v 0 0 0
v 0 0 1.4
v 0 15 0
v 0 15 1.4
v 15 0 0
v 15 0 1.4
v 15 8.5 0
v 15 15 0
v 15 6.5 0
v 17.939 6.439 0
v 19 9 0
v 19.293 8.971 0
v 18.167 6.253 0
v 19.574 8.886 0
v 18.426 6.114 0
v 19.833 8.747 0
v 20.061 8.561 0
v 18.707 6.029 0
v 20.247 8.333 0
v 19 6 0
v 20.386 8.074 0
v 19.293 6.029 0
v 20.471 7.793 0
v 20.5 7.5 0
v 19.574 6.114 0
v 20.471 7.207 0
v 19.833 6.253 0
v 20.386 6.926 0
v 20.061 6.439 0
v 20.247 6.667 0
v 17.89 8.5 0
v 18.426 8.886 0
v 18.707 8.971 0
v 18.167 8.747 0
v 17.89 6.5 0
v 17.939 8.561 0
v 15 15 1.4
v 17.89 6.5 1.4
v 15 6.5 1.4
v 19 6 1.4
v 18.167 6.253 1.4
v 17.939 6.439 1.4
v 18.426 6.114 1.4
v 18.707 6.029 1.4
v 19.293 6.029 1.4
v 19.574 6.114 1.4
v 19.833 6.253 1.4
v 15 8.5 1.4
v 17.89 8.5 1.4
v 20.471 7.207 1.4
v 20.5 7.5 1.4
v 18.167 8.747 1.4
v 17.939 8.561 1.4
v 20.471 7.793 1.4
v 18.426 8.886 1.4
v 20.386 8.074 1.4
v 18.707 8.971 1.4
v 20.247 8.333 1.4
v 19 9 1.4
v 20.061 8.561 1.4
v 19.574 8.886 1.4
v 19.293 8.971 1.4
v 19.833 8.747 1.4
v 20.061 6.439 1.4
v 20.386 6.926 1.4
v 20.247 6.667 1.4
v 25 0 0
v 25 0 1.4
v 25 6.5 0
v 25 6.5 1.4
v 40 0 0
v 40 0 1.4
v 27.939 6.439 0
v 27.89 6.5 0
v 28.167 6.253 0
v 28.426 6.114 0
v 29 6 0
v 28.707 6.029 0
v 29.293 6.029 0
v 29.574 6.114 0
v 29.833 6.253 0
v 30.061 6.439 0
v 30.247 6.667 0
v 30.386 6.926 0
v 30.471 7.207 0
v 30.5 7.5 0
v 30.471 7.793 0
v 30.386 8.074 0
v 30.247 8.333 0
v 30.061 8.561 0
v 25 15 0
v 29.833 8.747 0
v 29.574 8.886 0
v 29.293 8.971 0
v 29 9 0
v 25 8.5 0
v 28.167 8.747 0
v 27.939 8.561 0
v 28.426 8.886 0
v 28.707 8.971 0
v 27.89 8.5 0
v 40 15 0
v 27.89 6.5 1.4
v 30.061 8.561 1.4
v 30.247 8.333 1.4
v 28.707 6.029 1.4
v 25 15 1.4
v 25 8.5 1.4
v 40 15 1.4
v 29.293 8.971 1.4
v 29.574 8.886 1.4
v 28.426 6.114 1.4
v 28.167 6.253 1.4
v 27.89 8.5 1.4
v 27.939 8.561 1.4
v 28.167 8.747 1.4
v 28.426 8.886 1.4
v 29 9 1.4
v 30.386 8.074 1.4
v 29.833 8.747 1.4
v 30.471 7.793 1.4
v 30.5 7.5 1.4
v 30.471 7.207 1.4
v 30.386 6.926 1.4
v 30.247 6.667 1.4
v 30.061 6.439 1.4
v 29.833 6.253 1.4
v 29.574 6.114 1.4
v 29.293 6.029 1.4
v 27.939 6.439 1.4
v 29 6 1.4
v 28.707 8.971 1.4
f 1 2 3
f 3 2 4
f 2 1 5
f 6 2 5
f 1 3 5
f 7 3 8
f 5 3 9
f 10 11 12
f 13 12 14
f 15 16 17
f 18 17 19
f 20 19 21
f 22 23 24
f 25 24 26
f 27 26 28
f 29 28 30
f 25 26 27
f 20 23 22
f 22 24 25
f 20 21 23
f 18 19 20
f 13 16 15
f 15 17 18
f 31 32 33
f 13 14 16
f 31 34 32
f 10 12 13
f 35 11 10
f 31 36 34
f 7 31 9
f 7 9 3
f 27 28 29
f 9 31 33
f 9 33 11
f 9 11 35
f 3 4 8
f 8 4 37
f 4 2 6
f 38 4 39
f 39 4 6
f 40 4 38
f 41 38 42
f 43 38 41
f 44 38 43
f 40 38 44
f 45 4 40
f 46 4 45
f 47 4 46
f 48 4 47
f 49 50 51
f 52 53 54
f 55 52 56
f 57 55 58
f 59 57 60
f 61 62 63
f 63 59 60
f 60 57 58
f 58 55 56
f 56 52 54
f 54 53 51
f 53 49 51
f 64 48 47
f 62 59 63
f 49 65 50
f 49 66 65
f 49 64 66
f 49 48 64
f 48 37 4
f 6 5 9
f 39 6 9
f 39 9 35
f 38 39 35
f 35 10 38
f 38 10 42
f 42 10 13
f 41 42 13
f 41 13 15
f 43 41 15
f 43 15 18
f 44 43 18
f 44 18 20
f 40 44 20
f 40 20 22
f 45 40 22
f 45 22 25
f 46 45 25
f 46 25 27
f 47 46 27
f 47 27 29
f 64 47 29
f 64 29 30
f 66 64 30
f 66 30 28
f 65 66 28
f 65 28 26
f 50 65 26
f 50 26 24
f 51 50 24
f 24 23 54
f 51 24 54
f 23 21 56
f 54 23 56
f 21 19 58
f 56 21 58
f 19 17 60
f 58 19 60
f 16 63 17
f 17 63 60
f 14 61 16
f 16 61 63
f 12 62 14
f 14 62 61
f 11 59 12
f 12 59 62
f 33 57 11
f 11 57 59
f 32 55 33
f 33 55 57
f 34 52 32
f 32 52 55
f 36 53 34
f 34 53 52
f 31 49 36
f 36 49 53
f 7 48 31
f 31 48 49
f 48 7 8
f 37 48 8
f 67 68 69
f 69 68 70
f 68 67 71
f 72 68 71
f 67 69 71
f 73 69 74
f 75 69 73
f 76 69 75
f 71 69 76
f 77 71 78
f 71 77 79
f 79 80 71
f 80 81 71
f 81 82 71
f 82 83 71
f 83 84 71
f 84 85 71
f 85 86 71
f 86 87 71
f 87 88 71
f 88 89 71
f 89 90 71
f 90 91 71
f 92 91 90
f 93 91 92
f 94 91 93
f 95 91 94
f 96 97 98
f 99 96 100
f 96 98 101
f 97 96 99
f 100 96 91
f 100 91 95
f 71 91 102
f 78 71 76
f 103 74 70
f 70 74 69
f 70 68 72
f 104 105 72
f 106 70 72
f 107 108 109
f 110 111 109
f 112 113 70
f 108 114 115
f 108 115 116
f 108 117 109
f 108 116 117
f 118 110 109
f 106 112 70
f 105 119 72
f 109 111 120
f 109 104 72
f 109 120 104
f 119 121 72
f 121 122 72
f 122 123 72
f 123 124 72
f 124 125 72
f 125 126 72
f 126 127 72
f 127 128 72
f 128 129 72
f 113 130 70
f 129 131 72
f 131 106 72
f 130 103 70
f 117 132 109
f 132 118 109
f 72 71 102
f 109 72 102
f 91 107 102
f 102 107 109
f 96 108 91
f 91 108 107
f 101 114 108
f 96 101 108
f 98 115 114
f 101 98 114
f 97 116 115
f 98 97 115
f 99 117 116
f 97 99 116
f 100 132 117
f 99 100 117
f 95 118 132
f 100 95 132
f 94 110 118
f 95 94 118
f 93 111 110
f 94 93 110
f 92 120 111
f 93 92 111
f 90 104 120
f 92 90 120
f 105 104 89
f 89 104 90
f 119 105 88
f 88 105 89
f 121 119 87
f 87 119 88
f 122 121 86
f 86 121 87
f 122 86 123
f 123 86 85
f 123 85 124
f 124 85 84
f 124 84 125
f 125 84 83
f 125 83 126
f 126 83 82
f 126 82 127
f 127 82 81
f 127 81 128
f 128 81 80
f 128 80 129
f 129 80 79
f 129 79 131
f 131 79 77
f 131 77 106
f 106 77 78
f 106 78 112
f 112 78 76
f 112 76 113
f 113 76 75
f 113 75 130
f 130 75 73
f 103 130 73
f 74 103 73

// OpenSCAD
$fn=32;

*union() {
  cube([15, 15, 1.4]);
  translate([15+4, 15/2, 0]) cylinder(r=3/2, h=1.4);
  translate([15+4-10, (15-2)/2, 0]) cube([10, 2, 1.4]);

  translate([15, 0, 0]) difference() {
    translate([15.3, 0, 0]) cube([15, 15, 1.4]);
    translate([15+4, 15/2, -0.5]) cylinder(r=3.3/2, h=2.2);
    translate([15+4-10, (15-2.3)/2, -0.5]) cube([10, 2.3, 2.2]);
  }
}

cube([15, 15, 1.4]);
translate([15+4, 15/2, 0]) cylinder(r=3/2, h=1.4);
translate([15+4-10, (15-2)/2, 0]) cube([10, 2, 1.4]);

#translate([10, 0, 0]) difference() {
  translate([15, 0, 0]) cube([15, 15, 1.4]);
  translate([15+4, 15/2, -0.5]) cylinder(r=3/2, h=2.2);
  translate([15+4-10, (15-2)/2, -0.5]) cube([10, 2, 2.2]);
}
